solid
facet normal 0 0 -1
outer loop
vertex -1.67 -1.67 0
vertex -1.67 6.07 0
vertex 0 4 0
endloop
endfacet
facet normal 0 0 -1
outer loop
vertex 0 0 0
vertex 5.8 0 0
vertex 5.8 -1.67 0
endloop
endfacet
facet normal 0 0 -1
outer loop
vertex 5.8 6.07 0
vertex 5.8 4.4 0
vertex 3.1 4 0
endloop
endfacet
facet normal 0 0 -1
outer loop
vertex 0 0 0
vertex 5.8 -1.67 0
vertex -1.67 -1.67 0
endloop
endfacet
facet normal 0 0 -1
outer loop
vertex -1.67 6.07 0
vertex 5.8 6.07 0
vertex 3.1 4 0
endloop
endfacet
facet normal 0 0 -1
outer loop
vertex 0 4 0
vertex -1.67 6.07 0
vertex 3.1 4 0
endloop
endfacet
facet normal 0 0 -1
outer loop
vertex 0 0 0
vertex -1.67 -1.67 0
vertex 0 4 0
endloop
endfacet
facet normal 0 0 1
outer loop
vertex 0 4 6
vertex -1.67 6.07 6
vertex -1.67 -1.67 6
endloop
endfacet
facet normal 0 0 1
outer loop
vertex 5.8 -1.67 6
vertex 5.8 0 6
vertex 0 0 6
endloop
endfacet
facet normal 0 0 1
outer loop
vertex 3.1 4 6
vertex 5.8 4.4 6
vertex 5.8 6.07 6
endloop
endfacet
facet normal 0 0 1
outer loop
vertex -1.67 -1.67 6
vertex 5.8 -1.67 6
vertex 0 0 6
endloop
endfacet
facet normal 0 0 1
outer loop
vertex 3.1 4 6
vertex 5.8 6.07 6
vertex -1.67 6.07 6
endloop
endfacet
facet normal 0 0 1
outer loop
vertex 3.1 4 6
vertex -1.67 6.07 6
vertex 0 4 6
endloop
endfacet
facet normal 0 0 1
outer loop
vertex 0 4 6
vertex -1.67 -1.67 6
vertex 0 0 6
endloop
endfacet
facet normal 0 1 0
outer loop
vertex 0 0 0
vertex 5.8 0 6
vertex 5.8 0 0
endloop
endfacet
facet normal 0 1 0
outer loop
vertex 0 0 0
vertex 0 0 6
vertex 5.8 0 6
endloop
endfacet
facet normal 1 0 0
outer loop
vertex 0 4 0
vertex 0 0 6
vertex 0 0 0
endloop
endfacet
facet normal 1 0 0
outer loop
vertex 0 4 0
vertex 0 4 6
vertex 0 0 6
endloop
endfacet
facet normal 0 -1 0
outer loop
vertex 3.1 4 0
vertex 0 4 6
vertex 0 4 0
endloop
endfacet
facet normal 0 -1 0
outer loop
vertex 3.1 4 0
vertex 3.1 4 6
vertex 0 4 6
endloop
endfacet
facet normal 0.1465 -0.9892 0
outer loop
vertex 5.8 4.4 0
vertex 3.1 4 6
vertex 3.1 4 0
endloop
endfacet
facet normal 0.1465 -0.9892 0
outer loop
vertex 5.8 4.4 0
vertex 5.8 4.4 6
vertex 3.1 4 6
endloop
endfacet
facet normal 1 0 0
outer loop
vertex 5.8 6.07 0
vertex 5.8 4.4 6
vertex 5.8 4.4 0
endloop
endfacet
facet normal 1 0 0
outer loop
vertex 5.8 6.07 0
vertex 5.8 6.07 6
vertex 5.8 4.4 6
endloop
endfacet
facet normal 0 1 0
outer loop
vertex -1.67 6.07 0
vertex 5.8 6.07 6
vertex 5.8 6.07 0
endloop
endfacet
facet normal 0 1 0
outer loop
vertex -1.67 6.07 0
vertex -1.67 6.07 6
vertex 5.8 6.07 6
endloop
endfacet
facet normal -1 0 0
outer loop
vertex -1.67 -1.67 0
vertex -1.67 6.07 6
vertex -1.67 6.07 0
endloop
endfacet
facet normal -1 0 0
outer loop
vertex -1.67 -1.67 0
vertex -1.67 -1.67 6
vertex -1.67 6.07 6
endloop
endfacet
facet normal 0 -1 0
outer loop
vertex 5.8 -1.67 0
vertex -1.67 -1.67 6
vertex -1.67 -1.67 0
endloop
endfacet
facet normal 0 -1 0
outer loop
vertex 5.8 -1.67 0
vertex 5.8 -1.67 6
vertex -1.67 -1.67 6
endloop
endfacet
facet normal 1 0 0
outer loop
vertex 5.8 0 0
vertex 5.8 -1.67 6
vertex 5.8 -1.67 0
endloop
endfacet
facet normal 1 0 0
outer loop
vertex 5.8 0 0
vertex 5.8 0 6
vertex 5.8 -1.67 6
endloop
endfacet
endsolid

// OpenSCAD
// -----------------------------------------------------------------------------
// 3D-Model (OpenSCAD) for a key-clamp for the Badger2000.
//
// Author: Bernhard Bablok
// License: GPL3
//
// -----------------------------------------------------------------------------

$fa = 1;
$fs = 0.4;

w4=1.67;        // wall thickness 4 layers

x1 = 3.1;
x2 = 5.8;
y1 = 4.0;
y2 = 4.4;
z  = 6.0;

points = [
  [-w4,-w4],
  [x2,-w4],
  [x2,0],
  [0,0],
  [0,y1],
  [x1,y1],
  [x2,y2],
  [x2,y2+w4],
  [-w4,y2+w4]
 ];

linear_extrude(z) polygon(points);
